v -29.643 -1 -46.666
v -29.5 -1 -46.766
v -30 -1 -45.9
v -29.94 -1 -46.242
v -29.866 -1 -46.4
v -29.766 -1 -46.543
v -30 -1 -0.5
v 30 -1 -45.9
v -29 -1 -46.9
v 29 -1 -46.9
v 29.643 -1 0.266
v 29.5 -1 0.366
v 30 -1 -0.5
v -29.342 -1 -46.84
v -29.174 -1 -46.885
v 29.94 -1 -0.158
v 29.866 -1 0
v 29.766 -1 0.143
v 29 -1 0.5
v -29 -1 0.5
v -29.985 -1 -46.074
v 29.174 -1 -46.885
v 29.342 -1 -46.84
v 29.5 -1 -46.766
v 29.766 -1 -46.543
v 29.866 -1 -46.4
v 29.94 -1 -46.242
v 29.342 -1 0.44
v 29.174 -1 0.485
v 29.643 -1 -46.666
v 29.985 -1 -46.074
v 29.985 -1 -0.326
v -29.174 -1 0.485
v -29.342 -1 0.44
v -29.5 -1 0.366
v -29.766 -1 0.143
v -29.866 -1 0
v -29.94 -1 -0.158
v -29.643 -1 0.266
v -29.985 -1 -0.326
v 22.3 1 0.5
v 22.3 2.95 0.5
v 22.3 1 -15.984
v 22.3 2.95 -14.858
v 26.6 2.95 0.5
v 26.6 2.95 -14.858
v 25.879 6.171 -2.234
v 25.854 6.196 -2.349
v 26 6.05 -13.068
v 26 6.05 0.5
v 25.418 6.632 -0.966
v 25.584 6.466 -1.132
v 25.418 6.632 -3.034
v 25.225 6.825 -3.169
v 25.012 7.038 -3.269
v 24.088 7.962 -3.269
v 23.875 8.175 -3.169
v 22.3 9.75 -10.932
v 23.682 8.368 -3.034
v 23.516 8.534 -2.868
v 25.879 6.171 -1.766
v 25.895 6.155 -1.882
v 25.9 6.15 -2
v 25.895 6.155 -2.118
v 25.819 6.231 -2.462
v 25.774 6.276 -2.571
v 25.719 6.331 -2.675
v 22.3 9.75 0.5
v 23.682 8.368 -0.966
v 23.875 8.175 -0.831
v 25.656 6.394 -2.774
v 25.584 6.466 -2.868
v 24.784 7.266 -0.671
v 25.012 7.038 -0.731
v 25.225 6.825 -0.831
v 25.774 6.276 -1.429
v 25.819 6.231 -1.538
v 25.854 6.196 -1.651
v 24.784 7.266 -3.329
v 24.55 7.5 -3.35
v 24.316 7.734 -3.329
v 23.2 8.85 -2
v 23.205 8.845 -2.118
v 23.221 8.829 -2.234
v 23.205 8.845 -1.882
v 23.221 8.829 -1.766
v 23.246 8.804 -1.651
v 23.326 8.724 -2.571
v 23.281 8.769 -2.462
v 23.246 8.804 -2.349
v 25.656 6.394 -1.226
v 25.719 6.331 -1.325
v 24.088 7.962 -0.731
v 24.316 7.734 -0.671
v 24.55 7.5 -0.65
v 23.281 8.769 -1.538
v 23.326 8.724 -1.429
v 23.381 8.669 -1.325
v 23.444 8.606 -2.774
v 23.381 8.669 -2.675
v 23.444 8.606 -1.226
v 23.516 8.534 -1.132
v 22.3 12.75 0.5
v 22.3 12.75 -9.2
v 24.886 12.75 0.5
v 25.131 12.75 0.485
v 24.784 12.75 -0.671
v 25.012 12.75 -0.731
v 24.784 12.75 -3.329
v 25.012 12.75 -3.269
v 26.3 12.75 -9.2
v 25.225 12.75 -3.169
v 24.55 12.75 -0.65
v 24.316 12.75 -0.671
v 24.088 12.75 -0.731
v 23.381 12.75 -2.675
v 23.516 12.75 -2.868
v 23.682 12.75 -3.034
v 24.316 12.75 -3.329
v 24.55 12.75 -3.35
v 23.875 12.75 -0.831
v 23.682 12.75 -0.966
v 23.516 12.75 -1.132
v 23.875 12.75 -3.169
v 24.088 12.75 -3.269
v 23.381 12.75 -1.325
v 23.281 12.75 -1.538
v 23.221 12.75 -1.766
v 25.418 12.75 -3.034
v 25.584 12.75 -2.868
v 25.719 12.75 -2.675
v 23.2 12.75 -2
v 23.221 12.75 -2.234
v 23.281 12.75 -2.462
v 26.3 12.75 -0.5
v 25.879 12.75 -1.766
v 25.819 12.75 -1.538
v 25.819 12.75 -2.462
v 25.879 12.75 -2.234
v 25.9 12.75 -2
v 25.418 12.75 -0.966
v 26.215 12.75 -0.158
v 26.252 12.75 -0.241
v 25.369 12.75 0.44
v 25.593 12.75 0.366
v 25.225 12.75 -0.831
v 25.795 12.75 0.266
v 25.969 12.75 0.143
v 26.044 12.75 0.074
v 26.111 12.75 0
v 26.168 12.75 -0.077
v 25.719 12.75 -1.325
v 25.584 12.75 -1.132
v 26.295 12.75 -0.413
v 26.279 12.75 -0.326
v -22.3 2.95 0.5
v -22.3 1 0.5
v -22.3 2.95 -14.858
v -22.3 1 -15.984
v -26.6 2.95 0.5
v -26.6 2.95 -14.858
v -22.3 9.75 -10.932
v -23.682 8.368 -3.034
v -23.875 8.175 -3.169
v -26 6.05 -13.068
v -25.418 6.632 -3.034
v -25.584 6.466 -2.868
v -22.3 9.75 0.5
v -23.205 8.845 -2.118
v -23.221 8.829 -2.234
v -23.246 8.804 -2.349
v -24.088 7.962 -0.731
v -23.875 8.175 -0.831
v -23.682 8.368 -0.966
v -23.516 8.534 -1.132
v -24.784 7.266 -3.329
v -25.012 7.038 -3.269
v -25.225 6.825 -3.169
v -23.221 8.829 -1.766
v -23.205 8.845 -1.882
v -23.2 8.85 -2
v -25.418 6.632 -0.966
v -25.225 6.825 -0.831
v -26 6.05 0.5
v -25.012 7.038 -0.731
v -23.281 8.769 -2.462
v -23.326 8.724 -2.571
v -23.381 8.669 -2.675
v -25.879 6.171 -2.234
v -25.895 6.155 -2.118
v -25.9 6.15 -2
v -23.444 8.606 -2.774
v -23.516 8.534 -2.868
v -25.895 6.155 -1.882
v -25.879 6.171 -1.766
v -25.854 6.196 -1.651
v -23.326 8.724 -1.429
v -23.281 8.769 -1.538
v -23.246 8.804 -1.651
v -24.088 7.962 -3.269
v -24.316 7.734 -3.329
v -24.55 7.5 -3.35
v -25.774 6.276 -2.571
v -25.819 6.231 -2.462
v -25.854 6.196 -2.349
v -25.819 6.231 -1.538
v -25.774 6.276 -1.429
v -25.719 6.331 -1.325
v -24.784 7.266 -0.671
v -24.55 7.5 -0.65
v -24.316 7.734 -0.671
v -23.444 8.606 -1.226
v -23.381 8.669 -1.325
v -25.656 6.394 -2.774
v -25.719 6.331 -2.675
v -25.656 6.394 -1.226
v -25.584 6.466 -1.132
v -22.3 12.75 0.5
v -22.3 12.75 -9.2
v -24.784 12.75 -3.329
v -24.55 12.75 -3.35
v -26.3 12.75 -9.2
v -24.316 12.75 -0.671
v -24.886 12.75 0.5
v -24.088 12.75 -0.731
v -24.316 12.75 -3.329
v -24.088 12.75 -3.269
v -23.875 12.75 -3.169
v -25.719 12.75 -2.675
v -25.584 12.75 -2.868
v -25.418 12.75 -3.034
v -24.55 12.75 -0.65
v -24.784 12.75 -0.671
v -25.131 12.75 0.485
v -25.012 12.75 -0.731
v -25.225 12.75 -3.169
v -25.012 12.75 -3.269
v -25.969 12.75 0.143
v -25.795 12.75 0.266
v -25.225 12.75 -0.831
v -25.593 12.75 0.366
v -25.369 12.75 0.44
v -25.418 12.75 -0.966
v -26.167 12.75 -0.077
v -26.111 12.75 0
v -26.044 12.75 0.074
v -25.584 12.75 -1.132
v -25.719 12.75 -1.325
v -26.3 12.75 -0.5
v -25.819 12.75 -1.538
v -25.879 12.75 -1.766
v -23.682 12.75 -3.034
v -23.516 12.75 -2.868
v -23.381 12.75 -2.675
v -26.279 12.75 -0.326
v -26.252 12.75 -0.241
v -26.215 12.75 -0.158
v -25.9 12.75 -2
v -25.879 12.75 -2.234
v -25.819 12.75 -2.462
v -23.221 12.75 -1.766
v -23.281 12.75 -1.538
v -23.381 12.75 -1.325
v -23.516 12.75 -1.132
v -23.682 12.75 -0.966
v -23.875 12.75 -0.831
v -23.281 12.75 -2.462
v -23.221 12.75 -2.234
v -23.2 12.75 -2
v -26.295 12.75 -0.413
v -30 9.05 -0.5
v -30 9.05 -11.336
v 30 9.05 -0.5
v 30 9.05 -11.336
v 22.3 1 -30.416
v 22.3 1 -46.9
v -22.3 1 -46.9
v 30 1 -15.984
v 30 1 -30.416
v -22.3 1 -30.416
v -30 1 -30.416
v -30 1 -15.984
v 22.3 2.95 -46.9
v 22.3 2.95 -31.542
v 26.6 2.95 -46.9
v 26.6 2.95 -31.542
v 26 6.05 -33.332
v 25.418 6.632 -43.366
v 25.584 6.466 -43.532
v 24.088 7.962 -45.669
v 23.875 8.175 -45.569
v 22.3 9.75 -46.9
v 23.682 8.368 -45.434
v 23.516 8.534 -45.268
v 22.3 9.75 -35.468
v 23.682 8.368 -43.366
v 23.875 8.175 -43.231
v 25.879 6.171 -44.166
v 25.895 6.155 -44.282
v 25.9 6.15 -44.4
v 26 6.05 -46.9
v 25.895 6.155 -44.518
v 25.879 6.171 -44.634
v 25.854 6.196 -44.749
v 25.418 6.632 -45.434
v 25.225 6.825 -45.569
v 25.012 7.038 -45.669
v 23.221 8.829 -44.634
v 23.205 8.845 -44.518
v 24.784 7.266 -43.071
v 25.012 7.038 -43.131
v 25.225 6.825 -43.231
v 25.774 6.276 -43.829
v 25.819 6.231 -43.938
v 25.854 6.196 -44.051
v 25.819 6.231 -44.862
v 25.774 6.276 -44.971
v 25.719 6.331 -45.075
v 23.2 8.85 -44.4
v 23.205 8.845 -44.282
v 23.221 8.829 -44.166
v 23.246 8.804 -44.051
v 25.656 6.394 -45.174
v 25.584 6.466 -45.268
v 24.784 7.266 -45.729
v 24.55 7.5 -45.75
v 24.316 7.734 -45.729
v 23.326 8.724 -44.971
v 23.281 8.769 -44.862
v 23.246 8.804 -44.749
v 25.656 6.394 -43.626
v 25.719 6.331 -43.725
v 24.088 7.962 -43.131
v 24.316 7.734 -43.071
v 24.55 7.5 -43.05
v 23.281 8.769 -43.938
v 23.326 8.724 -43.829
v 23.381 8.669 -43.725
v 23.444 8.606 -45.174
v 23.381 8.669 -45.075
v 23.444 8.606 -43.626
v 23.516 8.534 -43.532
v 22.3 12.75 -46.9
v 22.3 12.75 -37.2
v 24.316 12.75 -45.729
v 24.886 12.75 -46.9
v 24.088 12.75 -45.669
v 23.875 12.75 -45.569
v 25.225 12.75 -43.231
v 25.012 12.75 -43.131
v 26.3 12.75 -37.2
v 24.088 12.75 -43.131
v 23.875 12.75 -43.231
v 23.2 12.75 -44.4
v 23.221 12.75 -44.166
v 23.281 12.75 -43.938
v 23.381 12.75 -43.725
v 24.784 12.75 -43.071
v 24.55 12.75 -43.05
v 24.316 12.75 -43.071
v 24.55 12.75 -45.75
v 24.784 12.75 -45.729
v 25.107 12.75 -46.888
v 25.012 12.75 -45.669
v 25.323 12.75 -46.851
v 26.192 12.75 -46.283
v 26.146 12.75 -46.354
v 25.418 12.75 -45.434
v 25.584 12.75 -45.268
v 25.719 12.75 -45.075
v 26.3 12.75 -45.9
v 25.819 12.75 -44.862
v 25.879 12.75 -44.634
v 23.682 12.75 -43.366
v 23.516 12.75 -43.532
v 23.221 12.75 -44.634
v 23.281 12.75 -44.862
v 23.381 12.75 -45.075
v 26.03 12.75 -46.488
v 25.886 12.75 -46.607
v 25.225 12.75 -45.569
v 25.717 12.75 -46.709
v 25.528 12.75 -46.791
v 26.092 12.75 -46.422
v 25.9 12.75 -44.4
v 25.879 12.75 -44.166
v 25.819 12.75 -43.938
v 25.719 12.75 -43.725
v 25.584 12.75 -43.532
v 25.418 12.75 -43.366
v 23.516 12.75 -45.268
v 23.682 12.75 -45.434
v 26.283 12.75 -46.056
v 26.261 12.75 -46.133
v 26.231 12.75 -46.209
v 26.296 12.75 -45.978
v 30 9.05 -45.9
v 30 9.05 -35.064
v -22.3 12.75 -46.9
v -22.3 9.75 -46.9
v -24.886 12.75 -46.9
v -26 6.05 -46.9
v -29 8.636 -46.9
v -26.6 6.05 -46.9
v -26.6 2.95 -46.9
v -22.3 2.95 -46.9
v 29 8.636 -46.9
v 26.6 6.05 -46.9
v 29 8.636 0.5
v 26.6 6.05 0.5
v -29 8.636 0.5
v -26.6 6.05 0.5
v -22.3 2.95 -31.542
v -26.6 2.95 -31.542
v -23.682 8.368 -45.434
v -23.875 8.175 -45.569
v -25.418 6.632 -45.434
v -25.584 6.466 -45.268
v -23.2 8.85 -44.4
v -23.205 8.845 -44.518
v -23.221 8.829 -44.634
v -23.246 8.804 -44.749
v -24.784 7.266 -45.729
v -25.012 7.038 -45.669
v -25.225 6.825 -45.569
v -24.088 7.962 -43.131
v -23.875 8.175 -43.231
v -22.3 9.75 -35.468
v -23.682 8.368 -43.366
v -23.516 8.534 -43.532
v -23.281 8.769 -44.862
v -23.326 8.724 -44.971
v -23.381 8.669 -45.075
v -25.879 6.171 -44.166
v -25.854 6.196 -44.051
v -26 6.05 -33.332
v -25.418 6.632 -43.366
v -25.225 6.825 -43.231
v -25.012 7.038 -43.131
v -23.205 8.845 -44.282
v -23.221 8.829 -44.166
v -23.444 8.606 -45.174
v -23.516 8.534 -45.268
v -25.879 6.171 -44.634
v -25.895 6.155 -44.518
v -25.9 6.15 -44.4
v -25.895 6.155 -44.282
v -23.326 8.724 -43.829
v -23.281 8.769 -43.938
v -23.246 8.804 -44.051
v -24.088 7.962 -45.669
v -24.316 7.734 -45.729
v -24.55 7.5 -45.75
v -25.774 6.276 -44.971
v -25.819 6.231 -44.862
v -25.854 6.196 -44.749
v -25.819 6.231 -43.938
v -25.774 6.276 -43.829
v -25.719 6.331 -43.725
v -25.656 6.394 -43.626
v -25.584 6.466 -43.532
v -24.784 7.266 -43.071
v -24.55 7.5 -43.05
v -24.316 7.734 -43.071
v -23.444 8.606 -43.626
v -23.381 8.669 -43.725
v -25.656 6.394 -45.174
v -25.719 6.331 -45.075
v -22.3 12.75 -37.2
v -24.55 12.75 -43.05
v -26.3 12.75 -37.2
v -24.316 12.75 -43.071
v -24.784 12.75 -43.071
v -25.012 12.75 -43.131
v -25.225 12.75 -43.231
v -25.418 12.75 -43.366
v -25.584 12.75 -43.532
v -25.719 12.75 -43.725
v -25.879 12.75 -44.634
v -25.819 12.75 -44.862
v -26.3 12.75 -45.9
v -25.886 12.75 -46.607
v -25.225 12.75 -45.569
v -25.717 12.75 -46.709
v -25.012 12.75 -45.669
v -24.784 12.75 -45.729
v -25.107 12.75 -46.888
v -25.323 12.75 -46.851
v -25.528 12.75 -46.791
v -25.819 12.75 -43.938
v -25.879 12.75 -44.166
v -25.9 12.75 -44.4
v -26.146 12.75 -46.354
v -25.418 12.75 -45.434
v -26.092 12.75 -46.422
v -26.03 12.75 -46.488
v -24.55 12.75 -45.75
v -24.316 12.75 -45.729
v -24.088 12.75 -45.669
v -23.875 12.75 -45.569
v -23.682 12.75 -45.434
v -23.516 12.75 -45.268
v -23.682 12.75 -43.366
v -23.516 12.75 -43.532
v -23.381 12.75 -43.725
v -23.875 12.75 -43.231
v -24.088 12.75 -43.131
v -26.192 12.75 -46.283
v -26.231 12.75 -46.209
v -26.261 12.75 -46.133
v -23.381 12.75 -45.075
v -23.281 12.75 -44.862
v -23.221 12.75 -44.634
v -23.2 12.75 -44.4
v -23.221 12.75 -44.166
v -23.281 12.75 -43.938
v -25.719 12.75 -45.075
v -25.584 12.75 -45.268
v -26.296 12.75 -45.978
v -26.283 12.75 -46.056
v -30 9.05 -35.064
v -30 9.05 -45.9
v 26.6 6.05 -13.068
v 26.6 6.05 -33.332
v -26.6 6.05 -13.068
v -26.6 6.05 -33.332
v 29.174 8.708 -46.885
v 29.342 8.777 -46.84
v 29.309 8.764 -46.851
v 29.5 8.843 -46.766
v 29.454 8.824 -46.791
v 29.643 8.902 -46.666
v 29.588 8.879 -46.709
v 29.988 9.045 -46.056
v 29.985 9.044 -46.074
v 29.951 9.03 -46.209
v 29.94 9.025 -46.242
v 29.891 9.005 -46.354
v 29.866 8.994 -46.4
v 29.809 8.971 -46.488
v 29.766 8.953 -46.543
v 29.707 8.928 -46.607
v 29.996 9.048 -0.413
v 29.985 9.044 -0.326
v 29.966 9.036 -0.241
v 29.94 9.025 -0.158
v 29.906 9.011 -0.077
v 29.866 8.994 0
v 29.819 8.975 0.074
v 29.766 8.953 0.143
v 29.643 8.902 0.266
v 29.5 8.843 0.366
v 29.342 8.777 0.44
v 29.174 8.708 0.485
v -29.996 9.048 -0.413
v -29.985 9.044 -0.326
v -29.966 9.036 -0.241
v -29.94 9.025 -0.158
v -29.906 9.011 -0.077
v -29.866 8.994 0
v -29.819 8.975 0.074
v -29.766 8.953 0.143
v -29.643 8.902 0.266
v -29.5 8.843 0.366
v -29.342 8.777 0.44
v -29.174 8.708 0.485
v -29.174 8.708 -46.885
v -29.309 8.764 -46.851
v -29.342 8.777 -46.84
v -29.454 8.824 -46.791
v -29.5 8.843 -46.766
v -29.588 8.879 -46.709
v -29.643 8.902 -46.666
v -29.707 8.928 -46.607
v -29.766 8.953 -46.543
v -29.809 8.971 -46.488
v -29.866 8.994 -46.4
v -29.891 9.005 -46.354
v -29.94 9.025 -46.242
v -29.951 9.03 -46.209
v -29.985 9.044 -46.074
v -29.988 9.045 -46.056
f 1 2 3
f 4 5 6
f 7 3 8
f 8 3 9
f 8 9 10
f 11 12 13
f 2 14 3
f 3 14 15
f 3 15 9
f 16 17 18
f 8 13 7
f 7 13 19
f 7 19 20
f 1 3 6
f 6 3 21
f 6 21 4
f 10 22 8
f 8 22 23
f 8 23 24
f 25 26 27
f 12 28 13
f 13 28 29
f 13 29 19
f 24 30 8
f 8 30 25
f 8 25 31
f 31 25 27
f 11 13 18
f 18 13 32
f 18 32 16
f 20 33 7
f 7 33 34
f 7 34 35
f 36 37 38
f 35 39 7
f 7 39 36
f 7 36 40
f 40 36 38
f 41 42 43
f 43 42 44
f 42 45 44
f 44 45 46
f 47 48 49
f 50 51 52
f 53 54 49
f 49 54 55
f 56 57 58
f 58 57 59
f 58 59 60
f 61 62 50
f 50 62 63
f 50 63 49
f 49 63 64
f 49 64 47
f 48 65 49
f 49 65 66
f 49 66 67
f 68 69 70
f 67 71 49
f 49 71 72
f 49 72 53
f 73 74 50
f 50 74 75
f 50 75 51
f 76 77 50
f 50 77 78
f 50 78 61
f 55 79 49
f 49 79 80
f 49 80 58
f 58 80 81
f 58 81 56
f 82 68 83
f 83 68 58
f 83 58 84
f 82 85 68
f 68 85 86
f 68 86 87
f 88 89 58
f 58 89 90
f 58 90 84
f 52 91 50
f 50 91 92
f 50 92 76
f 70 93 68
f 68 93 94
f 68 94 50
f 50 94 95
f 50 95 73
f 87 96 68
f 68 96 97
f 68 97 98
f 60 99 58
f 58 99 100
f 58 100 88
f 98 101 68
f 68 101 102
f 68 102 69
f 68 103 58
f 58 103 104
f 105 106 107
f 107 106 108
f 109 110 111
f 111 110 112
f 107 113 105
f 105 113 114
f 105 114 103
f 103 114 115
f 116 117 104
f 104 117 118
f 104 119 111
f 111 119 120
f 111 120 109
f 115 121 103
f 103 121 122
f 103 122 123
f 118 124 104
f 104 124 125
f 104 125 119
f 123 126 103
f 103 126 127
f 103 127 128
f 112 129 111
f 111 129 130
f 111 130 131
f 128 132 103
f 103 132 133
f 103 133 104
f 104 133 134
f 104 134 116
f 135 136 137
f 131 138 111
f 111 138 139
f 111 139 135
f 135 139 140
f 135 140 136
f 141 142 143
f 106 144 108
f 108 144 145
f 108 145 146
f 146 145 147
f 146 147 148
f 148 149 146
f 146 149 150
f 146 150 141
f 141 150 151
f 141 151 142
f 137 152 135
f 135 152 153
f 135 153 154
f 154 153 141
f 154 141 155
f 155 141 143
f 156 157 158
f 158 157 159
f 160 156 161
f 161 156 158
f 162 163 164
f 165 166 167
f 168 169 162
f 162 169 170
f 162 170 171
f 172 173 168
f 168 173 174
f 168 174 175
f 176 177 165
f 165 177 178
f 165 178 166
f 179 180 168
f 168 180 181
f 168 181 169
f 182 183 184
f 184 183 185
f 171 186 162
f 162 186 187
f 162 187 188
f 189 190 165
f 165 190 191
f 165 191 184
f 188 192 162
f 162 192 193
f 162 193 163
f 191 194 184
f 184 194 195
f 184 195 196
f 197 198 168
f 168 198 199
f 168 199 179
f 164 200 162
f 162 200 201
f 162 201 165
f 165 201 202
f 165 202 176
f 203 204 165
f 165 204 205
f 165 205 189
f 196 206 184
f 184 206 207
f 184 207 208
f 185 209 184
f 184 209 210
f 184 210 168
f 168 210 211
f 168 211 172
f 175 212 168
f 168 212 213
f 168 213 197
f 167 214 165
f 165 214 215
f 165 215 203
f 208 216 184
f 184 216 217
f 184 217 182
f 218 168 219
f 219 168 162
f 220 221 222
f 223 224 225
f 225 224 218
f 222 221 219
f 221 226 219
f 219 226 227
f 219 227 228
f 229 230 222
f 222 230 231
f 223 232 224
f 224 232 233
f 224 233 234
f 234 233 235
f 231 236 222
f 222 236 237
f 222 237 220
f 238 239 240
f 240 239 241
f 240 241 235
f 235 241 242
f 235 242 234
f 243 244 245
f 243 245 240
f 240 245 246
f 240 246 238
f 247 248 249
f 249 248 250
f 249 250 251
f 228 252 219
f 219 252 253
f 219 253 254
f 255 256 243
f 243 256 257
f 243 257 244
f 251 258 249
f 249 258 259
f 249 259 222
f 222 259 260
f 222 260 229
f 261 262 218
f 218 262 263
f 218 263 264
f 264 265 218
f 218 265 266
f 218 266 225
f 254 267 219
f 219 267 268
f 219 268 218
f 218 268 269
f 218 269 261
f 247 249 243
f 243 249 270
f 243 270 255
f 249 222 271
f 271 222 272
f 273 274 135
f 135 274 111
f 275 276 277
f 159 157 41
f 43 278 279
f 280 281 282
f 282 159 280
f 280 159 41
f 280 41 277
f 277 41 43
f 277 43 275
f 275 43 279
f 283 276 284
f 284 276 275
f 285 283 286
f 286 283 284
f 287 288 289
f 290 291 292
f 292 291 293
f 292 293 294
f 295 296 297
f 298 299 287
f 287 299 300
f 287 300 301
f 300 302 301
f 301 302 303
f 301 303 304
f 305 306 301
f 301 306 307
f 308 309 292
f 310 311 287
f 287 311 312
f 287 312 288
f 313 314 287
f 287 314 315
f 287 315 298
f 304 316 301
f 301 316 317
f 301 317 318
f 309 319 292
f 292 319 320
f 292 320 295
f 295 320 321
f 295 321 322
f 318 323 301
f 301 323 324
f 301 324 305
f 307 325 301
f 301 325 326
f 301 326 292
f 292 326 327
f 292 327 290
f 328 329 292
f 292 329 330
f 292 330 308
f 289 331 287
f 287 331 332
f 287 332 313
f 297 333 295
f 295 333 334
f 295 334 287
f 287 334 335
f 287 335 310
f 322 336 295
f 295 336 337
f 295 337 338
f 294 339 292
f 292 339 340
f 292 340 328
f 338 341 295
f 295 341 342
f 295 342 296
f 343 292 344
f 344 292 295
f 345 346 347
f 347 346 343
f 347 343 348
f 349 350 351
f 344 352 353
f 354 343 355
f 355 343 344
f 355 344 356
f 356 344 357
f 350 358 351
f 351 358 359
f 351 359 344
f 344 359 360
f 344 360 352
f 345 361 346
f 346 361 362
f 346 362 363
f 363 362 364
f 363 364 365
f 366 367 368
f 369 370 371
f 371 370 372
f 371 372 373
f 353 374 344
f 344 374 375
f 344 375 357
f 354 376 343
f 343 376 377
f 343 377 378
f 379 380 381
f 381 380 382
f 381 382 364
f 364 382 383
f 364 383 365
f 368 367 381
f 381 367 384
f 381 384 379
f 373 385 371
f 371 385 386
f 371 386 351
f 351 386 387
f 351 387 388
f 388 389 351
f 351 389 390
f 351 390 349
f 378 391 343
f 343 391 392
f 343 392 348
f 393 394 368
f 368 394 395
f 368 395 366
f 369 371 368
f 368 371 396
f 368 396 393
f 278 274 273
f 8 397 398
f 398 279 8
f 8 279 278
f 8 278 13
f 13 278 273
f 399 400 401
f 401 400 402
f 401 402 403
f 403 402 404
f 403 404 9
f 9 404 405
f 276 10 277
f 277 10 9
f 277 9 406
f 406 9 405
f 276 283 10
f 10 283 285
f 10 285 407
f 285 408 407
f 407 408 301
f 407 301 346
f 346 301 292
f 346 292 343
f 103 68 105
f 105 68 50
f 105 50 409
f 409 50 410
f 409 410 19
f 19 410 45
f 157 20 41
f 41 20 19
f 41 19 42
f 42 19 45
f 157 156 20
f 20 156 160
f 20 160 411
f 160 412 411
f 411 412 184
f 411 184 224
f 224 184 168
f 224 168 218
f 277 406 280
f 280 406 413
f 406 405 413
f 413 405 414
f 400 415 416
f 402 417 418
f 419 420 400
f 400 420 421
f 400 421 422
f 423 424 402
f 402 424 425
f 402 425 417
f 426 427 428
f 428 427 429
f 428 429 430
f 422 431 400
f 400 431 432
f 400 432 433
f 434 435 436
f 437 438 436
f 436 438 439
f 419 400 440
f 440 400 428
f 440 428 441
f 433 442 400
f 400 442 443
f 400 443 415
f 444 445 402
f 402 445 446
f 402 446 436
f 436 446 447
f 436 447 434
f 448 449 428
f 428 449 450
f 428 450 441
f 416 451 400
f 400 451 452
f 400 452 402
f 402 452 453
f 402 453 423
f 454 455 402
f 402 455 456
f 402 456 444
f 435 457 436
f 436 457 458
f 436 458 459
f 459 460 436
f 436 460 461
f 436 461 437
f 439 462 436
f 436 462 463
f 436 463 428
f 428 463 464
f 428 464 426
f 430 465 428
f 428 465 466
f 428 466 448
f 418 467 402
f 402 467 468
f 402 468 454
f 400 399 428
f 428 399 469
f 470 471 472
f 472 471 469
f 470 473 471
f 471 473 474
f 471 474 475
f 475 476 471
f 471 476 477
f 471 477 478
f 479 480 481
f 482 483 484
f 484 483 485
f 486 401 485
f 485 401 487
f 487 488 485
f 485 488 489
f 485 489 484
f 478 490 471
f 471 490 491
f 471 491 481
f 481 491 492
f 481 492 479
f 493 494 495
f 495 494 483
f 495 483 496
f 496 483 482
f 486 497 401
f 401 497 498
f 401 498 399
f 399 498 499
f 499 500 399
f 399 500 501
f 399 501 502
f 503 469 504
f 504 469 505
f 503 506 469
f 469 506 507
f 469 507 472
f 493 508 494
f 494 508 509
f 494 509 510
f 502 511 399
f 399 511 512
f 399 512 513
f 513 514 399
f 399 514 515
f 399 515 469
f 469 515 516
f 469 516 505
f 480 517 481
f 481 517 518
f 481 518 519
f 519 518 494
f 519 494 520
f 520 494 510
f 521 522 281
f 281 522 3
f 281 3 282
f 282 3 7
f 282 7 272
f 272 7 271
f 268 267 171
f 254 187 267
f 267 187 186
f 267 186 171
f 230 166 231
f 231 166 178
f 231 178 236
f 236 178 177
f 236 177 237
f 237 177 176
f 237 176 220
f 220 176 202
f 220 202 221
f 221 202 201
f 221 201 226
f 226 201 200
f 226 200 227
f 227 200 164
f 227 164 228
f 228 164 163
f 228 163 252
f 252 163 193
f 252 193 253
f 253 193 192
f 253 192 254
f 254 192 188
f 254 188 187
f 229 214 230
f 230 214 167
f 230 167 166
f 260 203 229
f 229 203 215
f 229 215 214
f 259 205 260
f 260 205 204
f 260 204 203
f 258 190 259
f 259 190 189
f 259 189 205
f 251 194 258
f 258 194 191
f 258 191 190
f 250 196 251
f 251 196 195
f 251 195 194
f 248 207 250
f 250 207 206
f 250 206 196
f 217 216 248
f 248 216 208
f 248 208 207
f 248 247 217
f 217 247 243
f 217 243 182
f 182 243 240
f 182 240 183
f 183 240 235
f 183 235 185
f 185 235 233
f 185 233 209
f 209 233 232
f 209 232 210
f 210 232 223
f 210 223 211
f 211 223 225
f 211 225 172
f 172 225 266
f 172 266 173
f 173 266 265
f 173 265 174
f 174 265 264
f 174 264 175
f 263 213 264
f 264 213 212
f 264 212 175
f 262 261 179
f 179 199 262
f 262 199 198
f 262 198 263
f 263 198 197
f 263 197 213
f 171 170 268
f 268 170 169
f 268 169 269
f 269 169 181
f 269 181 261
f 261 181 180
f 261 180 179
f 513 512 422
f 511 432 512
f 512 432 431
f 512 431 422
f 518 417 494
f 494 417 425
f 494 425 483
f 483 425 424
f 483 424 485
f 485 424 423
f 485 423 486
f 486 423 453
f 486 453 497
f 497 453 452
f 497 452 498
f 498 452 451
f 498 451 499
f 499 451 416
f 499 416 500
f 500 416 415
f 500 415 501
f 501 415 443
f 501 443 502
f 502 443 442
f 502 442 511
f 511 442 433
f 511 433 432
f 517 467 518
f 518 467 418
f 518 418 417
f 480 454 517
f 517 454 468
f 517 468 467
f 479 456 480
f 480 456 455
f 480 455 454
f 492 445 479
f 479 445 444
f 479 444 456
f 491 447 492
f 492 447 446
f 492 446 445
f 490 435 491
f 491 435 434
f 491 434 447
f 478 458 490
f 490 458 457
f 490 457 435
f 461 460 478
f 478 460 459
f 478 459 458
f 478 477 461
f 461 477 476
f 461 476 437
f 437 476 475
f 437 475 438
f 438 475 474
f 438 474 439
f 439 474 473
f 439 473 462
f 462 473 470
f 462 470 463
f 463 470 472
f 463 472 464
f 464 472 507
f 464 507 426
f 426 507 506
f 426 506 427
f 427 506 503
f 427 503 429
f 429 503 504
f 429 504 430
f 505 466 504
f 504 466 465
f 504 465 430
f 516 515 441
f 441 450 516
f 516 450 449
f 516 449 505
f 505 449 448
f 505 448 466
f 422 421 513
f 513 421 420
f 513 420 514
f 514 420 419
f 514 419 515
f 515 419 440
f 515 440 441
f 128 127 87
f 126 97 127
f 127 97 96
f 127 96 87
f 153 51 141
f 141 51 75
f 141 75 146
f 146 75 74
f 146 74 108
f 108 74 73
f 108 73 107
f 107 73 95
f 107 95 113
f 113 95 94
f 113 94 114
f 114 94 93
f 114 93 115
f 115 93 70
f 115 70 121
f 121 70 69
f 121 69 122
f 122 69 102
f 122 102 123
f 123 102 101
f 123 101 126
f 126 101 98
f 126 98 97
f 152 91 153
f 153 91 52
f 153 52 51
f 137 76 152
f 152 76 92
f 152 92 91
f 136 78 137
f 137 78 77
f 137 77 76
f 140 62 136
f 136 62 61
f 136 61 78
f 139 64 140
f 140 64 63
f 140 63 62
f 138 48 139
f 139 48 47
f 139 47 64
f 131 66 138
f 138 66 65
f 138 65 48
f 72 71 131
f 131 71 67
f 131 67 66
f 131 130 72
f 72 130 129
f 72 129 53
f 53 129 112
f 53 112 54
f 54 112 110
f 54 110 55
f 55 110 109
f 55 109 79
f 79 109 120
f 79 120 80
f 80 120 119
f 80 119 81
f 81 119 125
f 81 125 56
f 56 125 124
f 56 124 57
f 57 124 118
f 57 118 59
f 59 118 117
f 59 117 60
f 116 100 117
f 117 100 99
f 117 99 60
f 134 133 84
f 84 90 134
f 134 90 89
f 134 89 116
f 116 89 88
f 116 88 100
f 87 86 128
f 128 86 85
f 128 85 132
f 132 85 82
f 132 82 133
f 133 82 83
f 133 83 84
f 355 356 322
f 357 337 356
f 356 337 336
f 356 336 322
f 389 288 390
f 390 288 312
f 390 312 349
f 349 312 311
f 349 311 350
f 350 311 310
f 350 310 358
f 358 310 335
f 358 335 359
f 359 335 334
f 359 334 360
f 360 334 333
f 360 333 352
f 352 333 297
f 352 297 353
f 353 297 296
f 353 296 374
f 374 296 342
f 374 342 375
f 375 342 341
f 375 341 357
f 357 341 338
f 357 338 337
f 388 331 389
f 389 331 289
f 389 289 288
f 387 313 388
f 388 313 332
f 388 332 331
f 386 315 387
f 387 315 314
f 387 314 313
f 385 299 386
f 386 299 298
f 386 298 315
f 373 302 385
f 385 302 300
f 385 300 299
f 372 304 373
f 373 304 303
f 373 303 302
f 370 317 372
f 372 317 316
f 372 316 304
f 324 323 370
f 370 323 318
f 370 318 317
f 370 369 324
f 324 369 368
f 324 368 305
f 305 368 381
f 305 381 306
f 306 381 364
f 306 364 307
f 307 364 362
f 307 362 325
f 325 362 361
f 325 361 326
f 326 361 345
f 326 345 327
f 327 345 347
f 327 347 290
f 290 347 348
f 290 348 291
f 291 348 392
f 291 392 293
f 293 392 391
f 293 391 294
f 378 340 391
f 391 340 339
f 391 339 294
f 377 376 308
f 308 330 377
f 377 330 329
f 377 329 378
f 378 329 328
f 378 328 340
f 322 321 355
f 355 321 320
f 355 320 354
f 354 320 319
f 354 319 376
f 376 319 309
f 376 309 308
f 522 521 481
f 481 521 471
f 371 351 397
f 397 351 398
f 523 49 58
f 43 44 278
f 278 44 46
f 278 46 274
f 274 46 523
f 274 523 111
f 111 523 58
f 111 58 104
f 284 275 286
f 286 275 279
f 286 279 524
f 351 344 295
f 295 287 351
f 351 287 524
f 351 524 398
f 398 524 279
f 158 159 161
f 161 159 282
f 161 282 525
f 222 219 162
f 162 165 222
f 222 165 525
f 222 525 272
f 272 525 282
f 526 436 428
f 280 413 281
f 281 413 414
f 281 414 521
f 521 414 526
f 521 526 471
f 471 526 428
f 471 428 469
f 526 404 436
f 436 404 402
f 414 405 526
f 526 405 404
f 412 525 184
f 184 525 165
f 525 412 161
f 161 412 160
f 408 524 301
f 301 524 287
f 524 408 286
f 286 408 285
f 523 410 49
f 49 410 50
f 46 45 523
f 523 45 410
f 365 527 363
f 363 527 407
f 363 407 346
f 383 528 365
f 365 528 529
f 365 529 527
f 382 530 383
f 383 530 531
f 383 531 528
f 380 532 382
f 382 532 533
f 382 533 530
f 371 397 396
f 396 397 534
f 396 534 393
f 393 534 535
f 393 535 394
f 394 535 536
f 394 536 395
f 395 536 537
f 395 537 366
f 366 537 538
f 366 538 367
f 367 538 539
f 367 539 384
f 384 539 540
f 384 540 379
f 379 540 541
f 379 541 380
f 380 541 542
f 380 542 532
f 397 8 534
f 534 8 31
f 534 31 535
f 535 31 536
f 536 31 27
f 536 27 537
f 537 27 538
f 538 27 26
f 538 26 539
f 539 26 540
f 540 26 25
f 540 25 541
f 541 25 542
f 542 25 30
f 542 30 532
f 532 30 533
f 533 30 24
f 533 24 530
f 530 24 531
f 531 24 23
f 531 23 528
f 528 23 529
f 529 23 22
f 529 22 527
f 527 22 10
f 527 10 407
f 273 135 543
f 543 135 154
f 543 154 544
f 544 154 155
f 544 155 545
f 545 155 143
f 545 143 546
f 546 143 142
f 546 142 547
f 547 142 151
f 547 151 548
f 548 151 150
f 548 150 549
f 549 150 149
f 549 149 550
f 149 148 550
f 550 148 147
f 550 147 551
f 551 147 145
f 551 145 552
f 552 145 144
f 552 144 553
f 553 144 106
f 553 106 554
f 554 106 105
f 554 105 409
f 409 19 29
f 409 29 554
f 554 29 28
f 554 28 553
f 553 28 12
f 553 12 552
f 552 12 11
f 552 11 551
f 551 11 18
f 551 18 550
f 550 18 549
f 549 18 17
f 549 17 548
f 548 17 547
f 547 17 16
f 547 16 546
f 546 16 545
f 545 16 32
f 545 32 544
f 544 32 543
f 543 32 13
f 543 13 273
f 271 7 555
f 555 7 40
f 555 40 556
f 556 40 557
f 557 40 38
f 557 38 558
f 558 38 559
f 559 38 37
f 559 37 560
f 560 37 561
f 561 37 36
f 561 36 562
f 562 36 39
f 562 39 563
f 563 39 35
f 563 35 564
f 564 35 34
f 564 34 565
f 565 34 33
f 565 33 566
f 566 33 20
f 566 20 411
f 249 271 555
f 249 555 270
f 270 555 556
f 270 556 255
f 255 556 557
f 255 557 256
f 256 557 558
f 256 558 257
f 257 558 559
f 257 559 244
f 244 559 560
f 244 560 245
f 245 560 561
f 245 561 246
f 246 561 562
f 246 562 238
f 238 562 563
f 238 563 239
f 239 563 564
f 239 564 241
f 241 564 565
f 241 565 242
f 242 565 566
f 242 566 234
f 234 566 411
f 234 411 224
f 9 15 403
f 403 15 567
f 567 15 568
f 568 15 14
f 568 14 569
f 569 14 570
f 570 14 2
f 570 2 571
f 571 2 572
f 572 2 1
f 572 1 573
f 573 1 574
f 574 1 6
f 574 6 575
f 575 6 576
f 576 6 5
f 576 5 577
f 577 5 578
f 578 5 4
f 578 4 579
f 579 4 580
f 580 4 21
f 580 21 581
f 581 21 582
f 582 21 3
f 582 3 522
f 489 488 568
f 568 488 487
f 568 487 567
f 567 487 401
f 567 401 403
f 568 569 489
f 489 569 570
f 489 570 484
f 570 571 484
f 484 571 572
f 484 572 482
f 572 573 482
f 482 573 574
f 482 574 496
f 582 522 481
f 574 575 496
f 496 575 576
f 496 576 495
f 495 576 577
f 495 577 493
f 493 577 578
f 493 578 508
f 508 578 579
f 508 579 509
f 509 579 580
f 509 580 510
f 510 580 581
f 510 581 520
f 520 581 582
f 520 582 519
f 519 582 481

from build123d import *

# Parameters (mm, degrees)
BOSS_EXTRUDE1_DEPTH   = 46.39999966
SKETCH2_R             = 1.35
CUT_EXTRUDE1_DEPTH    = 57.705554564
CUT_EXTRUDE2_DEPTH    = 57.705554564
CUT_EXTRUDE3_DEPTH    = 77.912417193
MOVE_FACE1_BY         = 0.5
MOVE_FACE1_2_BY       = 0.5
CUT_EXTRUDE5_DEPTH    = 0.5
CUT_EXTRUDE6_DEPTH    = 0.5
MOVE_START            = 2.95
MOVE_FACE2_OUTLINE_W  = 4.2
MOVE_FACE2_OUTLINE_H  = 47.39999966
MOVE_FACE2_OUTLINE_R  = 1.35
MOVE_FACE2_DEPTH      = 2
MOVE_FACE3_BY         = 2
MOVE_FACE4_BY         = 0.1
MOVE_FACE4_2_BY       = 0.1
MOVE_FACE4_3_BY       = 0.1
MOVE_FACE4_4_BY       = 0.1
SKETCH14_W            = 31.645569848
SKETCH14_H            = 25
BOSS_EXTRUDE4_DEPTH   = 4
SKETCH15_R            = 2.1
CUT_EXTRUDE9_DEPTH    = 59.746648569
SKETCH16_R            = 3.6
CUT_EXTRUDE10_DEPTH   = 4.2
MOVE_FACE5_BY         = 4
MOVE_FACE6_BY         = 1
FILLET1_R             = 1
DELETEFACE1_START     = -5
DELETEFACE1_OUTLINE_R = 3.6
DELETEFACE1_DEPTH     = 6
DELETEFACE2_START     = -5
DELETEFACE2_OUTLINE_R = 1.35
DELETEFACE2_DEPTH     = 7.95
MOVE_FACE7_BY         = 4


# Read off the part's stored shape, not the designer's step: Move Face2, DeleteFace1, DeleteFace2
with BuildPart() as part:
    # Sketch1 → Boss-Extrude1 (new body)
    with BuildSketch(Plane.XY):
        Polygon((0, 0), (30, 0), (30, 12.7499), (22.3001, 12.7499), (22.3001, 9.7499), (26, 6.05), (26, 4.95), (22.3, 4.95), (22.3, 1), (0, 1), align=None)
    extrude(amount=-BOSS_EXTRUDE1_DEPTH)

    # Mirror1: part across plane


with BuildPart() as part_1:
    add(part.part)
    add(part.part.mirror(Plane(origin=(0, 1, -46.39999966), x_dir=(0, 0, 1), z_dir=(-1, 0, 0))))

    # Sketch2 → Cut-Extrude1 (cut, through all)
    with BuildSketch(Plane(origin=(0, 12.7499, 0), x_dir=(1, 0, 0), z_dir=(0, 1, 0))):
        with Locations(Location((-24.549999831, 1.999999999, 0), (0, 0, 270))):
            Circle(SKETCH2_R)
        with Locations(Location((-24.549999831, 44.399999661, 0), (0, 0, 270))):
            Circle(SKETCH2_R)
        with Locations(Location((24.549999831, 1.999999999, 0), (0, 0, 270))):
            Circle(SKETCH2_R)
        with Locations(Location((24.549999831, 44.399999661, 0), (0, 0, 270))):
            Circle(SKETCH2_R)
    extrude(amount=-CUT_EXTRUDE1_DEPTH, mode=Mode.SUBTRACT)

    # Sketch3 → Cut-Extrude2 (cut, through all)
    with BuildSketch(Plane.XY):
        Polygon((26.3, 12.7499), (30, 9.0499), (30, 12.7499), align=None)
        Polygon((-30, 12.7499), (-30, 9.0499), (-26.3, 12.7499), align=None)
    extrude(amount=-CUT_EXTRUDE2_DEPTH, mode=Mode.SUBTRACT)

    # Sketch4 → Cut-Extrude3 (cut, through all)
    with BuildSketch(Plane(origin=(30, 0, 0), x_dir=(0, 0, -1), z_dir=(1, 0, 0))):
        Polygon((9.19999983, 12.7499), (37.19999983, 12.7499), (30.416191902, 1), (15.983807758, 1), align=None)
    extrude(amount=-CUT_EXTRUDE3_DEPTH, mode=Mode.SUBTRACT)

    # Move Face1: a face moved outward by 0.5
    extrude(part_1.faces().sort_by_distance((-24, 3.187475, -46.39999966))[0], amount=MOVE_FACE1_BY, dir=(0, 0, -1))

    # Move Face1 2: a face moved outward by 0.5
    extrude(part_1.faces().sort_by_distance((-24, 3.187475, 0))[0], amount=MOVE_FACE1_2_BY, dir=(0, 0, 1))

    # Sketch6 → Cut-Extrude5 (cut)
    with BuildSketch(Plane(origin=(-26, 0, 0), x_dir=(0, 0, -1), z_dir=(1, 0, 0))):
        Polygon((13.703274195, 4.95), (13.068188899, 6.05), (-0.5, 6.05), (-0.5, 4.95), align=None)
        Polygon((33.331810761, 6.05), (32.696725465, 4.95), (46.89999966, 4.95), (46.89999966, 6.05), align=None)
    extrude(amount=-CUT_EXTRUDE5_DEPTH, mode=Mode.SUBTRACT)

    # Sketch7 → Cut-Extrude6 (cut)
    with BuildSketch(Plane.ZY.offset(-26)):
        Polygon((-13.068188899, 6.05), (-13.703274195, 4.95), (0.5, 4.95), (0.5, 6.05), align=None)
        Polygon((-32.696725465, 4.95), (-33.331810761, 6.05), (-46.89999966, 6.05), (-46.89999966, 4.95), align=None)
    extrude(amount=-CUT_EXTRUDE6_DEPTH, mode=Mode.SUBTRACT)

    # Move Face2 outline → Move Face2 (cut)
    # profile 1 of 2: a face of its own
    with BuildSketch(Plane(origin=(0, 0, 0), x_dir=(1, 0, 0), z_dir=(0, 1, 0)).offset(MOVE_START)):
        with Locations((-24.4, 23.19999983)):
            Rectangle(MOVE_FACE2_OUTLINE_W, MOVE_FACE2_OUTLINE_H)
        with Locations((-24.549999831, 1.999999999)):
            Circle(MOVE_FACE2_OUTLINE_R, mode=Mode.SUBTRACT)
        with Locations((-24.549999831, 44.399999661)):
            Circle(MOVE_FACE2_OUTLINE_R, mode=Mode.SUBTRACT)
    # profile 2 of 2: a face of its own
    with BuildSketch(Plane(origin=(0, 0, 0), x_dir=(1, 0, 0), z_dir=(0, 1, 0)).offset(MOVE_START)):
        with Locations((24.4, 23.19999983)):
            Rectangle(MOVE_FACE2_OUTLINE_W, MOVE_FACE2_OUTLINE_H)
        with Locations((24.549999831, 1.999999999)):
            Circle(MOVE_FACE2_OUTLINE_R, mode=Mode.SUBTRACT)
        with Locations((24.549999831, 44.399999661)):
            Circle(MOVE_FACE2_OUTLINE_R, mode=Mode.SUBTRACT)
    extrude(amount=MOVE_FACE2_DEPTH, mode=Mode.SUBTRACT)

    # Move Face3: a face moved outward by 2.0
    extrude(part_1.faces().sort_by_distance((0, 0, -23.19999983))[0], amount=MOVE_FACE3_BY, dir=(0, -1, 0))

    # Move Face4: a face moved inward by 0.1
    extrude(part_1.faces().sort_by_distance((-26.5, 4.468031617, -6.740769385))[0], amount=MOVE_FACE4_BY, dir=(-1, 0, 0), mode=Mode.SUBTRACT)

    # Move Face4 2: a face moved inward by 0.1
    extrude(part_1.faces().sort_by_distance((-26.5, 4.468031617, -39.659230275))[0], amount=MOVE_FACE4_2_BY, dir=(-1, 0, 0), mode=Mode.SUBTRACT)

    # Move Face4 3: a face moved inward by 0.1
    extrude(part_1.faces().sort_by_distance((26.5, 4.468031617, -6.740769385))[0], amount=MOVE_FACE4_3_BY, dir=(1, 0, 0), mode=Mode.SUBTRACT)

    # Move Face4 4: a face moved inward by 0.1
    extrude(part_1.faces().sort_by_distance((26.5, 4.468031617, -39.659230275))[0], amount=MOVE_FACE4_4_BY, dir=(1, 0, 0), mode=Mode.SUBTRACT)

    # Sketch14 → Boss-Extrude4 (add)
    with BuildSketch(Plane.XZ.offset(2)):
        with Locations((0, -23.19999983)):
            Rectangle(SKETCH14_W, SKETCH14_H)
    extrude(amount=BOSS_EXTRUDE4_DEPTH)

    # Sketch15 → Cut-Extrude9 (cut, through all)
    with BuildSketch(Plane.XZ.offset(6)):
        with Locations(Location((-8.5, -14.69999983, 0), (0, 0, 270))):
            Circle(SKETCH15_R)
        with Locations(Location((8.5, -14.69999983, 0), (0, 0, 270))):
            Circle(SKETCH15_R)
        with Locations(Location((8.5, -31.69999983, 0), (0, 0, 270))):
            Circle(SKETCH15_R)
        with Locations(Location((-8.5, -31.69999983, 0), (0, 0, 270))):
            Circle(SKETCH15_R)
    extrude(amount=-CUT_EXTRUDE9_DEPTH, mode=Mode.SUBTRACT)

    # Sketch16 → Cut-Extrude10 (cut)
    with BuildSketch(Plane(origin=(0, 1, 0), x_dir=(1, 0, 0), z_dir=(0, 1, 0))):
        with Locations(Location((-8.5, 31.69999983, 0), (0, 0, 270))):
            Circle(SKETCH16_R)
        with Locations(Location((8.5, 31.69999983, 0), (0, 0, 270))):
            Circle(SKETCH16_R)
        with Locations(Location((8.5, 14.69999983, 0), (0, 0, 270))):
            Circle(SKETCH16_R)
        with Locations(Location((-8.5, 14.69999983, 0), (0, 0, 270))):
            Circle(SKETCH16_R)
    extrude(amount=-CUT_EXTRUDE10_DEPTH, mode=Mode.SUBTRACT)

    # Move Face5: a face moved outward by 4.0
    extrude(part_1.faces().sort_by_distance((0, -2, -42.159999694))[0], amount=MOVE_FACE5_BY, dir=(0, -1, 0))

    # Move Face6: a face moved inward by 1.0
    extrude(part_1.faces().sort_by_distance((0, -6, -23.19999983))[0], amount=MOVE_FACE6_BY, dir=(0, 1, 0), mode=Mode.SUBTRACT)

    # Fillet1
    fillet1_edges = [part_1.edges().sort_by_distance(p)[0] for p in [
        (30, 2.02495, -46.89999966),
        (30, 2.02495, 0.5),
        (-30, 2.02495, 0.5),
        (-30, 2.02495, -46.89999966),
        (28.15, 10.8999, -46.89999966),
        (28.15, 10.8999, 0.5),
        (-28.15, 10.8999, -46.89999966),
        (-28.15, 10.8999, 0.5),
    ]]
    fillet(fillet1_edges, radius=FILLET1_R)

    # DeleteFace1 outline → DeleteFace1 (add)
    with BuildSketch(Plane(origin=(0, 0, 0), x_dir=(1, 0, 0), z_dir=(0, 1, 0)).offset(DELETEFACE1_START)):
        with Locations((-8.5, 14.69999983)):
            Circle(DELETEFACE1_OUTLINE_R)
        with Locations((8.5, 14.69999983)):
            Circle(DELETEFACE1_OUTLINE_R)
        with Locations((8.5, 31.69999983)):
            Circle(DELETEFACE1_OUTLINE_R)
        with Locations((-8.5, 31.69999983)):
            Circle(DELETEFACE1_OUTLINE_R)
    extrude(amount=DELETEFACE1_DEPTH)

    # DeleteFace2 outline → DeleteFace2 (add)
    with BuildSketch(Plane(origin=(0, 0, 0), x_dir=(1, 0, 0), z_dir=(0, 1, 0)).offset(DELETEFACE2_START)):
        with Locations((-24.549999831, 1.999999999)):
            Circle(DELETEFACE2_OUTLINE_R)
        with Locations((-24.549999831, 44.399999661)):
            Circle(DELETEFACE2_OUTLINE_R)
        with Locations((24.549999831, 1.999999999)):
            Circle(DELETEFACE2_OUTLINE_R)
        with Locations((24.549999831, 44.399999661)):
            Circle(DELETEFACE2_OUTLINE_R)
    extrude(amount=DELETEFACE2_DEPTH)

    # Move Face7: a face moved inward by 4.0
    extrude(part_1.faces().sort_by_distance((0, -5, -23.19999983))[0], amount=MOVE_FACE7_BY, dir=(0, 1, 0), mode=Mode.SUBTRACT)


solid = part_1.part
